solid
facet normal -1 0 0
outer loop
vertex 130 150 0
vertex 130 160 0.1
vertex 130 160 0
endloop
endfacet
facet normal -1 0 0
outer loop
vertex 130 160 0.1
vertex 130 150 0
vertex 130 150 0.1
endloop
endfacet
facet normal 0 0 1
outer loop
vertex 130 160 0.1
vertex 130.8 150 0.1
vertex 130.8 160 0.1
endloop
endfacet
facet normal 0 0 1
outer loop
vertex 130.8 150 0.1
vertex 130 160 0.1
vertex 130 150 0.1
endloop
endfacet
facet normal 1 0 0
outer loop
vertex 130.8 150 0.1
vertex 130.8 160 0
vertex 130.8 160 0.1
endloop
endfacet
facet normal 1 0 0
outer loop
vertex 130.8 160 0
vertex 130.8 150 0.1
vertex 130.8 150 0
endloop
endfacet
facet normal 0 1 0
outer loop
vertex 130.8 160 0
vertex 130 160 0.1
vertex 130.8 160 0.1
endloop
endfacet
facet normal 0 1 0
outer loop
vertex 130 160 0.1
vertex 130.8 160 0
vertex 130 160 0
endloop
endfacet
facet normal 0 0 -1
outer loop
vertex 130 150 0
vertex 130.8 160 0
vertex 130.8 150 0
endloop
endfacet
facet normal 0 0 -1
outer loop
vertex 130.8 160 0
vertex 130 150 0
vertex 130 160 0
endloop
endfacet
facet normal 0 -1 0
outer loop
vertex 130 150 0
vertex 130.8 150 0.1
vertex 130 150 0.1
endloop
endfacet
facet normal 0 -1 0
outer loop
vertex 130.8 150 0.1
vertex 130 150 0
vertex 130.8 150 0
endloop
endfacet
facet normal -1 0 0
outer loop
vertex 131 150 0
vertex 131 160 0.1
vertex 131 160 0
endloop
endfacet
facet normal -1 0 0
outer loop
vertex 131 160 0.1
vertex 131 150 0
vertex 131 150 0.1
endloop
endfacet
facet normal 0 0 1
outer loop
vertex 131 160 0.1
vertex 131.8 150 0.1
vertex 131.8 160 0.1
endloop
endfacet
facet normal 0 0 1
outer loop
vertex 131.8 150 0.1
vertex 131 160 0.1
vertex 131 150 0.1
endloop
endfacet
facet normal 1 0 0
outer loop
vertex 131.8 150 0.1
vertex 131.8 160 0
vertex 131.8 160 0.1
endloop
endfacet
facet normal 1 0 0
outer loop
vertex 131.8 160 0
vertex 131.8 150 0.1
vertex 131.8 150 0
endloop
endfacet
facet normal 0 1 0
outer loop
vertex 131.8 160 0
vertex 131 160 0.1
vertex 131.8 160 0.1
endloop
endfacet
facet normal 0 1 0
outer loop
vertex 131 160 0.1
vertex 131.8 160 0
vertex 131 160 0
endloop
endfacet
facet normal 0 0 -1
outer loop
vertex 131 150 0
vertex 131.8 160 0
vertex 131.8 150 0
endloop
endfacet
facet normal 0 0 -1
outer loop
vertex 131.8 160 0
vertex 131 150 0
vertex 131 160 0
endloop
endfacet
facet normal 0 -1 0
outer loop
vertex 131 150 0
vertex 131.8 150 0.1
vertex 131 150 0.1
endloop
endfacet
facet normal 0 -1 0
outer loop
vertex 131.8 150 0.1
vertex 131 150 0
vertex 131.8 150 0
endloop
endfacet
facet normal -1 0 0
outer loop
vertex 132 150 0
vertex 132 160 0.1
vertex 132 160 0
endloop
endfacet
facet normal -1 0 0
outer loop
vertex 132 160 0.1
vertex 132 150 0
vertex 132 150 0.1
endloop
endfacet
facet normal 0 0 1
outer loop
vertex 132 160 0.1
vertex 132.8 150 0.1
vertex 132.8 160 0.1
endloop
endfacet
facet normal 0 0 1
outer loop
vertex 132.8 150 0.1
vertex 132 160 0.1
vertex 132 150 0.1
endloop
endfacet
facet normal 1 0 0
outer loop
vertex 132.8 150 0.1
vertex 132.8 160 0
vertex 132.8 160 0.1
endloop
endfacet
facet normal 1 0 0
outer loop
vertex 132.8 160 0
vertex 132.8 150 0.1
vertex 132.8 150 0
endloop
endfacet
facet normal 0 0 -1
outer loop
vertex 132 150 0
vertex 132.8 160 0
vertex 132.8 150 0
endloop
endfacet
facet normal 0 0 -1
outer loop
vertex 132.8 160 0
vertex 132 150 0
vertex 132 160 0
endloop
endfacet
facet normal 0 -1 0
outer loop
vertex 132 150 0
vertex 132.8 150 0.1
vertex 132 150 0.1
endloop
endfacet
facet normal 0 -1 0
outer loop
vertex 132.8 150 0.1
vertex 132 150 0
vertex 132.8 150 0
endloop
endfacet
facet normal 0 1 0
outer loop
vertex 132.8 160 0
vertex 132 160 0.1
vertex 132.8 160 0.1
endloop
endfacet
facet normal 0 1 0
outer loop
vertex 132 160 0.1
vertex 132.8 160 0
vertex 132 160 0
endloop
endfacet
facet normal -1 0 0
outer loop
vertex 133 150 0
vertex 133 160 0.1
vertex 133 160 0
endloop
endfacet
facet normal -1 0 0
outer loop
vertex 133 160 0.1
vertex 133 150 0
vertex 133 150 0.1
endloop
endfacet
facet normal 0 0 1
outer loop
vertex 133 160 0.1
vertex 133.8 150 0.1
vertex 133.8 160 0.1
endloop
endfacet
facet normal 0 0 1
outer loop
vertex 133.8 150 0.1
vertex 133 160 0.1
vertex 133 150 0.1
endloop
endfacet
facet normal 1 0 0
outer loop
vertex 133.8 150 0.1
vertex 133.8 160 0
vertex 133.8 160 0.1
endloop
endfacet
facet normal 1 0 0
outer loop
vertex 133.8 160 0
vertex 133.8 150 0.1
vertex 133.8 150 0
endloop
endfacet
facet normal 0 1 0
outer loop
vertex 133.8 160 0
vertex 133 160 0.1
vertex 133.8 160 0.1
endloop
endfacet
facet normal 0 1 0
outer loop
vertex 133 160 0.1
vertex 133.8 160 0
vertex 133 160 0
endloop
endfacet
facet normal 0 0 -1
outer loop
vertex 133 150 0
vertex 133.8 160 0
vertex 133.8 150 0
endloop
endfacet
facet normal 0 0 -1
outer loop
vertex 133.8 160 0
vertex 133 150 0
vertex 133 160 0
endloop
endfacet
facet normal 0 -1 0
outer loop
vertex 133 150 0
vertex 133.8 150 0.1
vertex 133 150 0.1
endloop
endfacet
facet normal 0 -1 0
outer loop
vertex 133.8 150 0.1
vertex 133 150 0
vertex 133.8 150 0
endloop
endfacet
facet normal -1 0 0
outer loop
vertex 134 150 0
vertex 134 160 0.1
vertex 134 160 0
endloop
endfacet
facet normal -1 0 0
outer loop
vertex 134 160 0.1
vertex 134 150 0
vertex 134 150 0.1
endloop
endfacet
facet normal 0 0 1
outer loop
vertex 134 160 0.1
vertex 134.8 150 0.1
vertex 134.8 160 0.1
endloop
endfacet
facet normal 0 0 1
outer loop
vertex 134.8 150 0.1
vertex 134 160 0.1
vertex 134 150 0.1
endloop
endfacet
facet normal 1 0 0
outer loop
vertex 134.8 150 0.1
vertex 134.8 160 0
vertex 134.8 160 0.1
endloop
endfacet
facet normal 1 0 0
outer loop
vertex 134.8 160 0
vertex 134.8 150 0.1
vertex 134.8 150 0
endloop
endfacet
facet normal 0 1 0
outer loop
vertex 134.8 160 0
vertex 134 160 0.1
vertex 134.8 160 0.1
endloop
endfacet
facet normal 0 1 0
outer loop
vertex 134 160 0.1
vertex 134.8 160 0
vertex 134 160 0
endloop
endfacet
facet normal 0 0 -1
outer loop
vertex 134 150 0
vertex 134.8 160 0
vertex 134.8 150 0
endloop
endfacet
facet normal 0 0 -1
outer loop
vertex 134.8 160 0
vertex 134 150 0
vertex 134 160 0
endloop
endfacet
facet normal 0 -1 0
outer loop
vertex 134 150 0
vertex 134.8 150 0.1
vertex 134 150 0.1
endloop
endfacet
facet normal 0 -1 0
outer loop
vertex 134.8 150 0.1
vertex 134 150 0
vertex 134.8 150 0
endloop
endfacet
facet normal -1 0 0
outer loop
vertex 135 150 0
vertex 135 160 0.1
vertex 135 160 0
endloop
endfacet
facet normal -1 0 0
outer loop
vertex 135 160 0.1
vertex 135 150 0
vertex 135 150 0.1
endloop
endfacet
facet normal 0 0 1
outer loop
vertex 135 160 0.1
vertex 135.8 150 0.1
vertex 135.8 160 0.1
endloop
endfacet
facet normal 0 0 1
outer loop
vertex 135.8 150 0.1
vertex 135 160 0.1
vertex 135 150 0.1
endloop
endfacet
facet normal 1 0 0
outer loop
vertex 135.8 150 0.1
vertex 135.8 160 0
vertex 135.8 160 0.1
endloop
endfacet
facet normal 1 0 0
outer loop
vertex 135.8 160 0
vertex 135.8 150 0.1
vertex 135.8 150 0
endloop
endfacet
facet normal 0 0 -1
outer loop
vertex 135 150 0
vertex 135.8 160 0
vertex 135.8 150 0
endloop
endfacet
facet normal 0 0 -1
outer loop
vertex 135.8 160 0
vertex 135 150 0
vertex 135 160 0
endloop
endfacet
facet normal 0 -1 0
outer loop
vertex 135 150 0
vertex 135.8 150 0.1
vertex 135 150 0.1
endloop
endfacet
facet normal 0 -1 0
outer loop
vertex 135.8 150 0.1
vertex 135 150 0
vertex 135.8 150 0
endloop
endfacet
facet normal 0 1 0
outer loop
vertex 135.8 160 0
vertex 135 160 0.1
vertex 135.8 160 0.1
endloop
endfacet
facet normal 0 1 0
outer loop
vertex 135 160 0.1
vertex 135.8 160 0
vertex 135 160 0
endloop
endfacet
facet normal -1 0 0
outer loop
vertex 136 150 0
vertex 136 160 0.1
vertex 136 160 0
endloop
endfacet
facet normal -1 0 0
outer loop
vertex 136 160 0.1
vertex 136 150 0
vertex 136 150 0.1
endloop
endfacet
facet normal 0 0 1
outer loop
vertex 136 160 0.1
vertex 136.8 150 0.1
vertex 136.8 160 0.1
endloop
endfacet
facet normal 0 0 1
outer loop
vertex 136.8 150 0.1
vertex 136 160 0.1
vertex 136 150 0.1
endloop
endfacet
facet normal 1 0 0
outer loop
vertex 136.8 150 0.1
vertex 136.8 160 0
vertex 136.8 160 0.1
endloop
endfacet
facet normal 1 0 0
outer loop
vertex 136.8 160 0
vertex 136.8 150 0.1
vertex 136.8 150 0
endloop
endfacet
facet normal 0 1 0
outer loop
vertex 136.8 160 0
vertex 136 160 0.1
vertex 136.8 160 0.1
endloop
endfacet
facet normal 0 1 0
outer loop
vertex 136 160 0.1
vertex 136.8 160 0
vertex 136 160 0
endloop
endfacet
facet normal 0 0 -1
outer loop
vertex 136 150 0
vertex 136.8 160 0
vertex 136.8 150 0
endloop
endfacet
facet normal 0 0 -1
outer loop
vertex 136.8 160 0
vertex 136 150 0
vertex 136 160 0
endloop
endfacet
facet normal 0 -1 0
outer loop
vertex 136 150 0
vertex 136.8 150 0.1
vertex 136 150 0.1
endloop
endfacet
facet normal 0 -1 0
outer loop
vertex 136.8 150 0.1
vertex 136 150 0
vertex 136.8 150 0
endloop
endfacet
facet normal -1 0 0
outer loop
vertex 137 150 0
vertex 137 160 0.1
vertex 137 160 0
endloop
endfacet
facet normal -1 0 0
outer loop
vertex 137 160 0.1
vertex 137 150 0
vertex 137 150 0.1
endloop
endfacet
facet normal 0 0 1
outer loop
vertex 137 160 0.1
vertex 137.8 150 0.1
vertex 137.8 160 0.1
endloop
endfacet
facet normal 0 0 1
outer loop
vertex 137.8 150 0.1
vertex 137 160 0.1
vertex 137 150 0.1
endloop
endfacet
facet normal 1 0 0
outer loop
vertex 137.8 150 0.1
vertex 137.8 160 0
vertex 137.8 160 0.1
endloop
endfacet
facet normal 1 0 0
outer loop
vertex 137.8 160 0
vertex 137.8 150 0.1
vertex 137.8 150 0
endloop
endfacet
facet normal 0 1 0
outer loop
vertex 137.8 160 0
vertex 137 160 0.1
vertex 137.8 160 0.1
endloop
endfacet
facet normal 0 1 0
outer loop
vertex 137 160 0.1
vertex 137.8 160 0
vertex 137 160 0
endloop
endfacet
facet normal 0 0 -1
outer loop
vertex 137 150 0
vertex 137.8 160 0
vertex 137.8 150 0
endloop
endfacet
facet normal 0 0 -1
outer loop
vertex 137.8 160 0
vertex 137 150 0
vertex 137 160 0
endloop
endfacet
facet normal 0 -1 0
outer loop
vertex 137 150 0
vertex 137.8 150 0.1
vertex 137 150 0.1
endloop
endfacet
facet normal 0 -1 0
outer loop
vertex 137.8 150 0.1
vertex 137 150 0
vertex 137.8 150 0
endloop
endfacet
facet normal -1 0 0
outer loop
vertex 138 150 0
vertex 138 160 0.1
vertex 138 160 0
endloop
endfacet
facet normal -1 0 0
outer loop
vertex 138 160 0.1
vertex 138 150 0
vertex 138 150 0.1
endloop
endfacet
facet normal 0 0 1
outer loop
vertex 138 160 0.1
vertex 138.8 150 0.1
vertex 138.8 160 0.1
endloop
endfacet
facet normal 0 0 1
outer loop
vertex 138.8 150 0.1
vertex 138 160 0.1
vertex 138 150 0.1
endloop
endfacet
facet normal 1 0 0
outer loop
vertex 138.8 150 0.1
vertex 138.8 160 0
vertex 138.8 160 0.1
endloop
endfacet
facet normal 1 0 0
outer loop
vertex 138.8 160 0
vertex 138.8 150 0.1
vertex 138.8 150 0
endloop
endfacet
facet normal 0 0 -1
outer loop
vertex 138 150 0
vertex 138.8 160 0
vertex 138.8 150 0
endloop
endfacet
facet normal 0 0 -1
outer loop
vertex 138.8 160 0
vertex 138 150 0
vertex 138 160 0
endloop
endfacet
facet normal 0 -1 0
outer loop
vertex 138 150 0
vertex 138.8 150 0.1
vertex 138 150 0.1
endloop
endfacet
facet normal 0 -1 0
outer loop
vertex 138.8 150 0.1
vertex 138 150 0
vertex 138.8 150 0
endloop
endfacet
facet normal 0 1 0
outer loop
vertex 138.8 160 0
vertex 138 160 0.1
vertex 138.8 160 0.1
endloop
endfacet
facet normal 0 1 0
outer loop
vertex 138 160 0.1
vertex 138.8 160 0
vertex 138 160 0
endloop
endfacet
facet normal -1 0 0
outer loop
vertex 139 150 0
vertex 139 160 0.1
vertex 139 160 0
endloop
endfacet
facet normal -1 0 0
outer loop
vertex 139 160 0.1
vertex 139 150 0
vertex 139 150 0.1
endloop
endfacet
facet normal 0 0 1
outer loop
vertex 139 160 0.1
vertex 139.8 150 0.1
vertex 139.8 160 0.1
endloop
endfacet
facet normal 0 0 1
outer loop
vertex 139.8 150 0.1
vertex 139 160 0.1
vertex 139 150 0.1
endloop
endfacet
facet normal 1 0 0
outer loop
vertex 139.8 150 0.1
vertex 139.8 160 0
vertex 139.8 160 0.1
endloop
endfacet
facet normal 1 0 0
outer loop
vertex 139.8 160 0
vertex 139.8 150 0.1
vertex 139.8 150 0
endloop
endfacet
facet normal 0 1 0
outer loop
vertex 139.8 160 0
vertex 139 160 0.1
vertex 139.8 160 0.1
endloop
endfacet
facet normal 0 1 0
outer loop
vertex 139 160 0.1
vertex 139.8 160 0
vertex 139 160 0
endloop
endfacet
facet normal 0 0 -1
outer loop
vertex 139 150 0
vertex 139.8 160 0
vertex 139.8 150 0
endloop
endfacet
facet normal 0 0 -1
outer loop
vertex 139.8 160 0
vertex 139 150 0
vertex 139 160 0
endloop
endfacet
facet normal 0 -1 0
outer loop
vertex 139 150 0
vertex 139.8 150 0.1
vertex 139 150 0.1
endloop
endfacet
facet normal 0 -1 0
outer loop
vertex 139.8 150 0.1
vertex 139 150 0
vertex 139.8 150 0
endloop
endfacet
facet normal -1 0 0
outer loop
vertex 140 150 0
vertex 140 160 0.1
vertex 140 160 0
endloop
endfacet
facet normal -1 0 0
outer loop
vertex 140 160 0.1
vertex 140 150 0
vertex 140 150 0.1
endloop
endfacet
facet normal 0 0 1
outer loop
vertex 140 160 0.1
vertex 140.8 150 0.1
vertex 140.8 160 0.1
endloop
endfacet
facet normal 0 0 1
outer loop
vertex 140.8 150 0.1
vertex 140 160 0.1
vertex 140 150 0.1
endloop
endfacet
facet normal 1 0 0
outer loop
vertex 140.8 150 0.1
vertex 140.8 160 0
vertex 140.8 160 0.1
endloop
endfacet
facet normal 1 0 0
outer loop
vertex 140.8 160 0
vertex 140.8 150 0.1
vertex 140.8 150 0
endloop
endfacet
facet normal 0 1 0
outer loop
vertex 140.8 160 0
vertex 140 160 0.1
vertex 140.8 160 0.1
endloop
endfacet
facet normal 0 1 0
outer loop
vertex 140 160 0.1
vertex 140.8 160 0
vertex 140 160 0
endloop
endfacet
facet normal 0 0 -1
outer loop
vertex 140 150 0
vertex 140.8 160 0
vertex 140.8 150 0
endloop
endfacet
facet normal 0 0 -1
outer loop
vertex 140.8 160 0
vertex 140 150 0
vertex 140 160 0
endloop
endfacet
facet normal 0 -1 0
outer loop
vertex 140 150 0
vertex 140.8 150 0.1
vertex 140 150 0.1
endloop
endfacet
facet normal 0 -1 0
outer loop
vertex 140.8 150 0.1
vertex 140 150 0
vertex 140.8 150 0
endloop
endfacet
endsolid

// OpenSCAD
translate([10+120,10+140,0])
        for (i = [0 : 10]){
            translate([i,0,0])
                cube(size = [0.8,10,0.1]);
    }
